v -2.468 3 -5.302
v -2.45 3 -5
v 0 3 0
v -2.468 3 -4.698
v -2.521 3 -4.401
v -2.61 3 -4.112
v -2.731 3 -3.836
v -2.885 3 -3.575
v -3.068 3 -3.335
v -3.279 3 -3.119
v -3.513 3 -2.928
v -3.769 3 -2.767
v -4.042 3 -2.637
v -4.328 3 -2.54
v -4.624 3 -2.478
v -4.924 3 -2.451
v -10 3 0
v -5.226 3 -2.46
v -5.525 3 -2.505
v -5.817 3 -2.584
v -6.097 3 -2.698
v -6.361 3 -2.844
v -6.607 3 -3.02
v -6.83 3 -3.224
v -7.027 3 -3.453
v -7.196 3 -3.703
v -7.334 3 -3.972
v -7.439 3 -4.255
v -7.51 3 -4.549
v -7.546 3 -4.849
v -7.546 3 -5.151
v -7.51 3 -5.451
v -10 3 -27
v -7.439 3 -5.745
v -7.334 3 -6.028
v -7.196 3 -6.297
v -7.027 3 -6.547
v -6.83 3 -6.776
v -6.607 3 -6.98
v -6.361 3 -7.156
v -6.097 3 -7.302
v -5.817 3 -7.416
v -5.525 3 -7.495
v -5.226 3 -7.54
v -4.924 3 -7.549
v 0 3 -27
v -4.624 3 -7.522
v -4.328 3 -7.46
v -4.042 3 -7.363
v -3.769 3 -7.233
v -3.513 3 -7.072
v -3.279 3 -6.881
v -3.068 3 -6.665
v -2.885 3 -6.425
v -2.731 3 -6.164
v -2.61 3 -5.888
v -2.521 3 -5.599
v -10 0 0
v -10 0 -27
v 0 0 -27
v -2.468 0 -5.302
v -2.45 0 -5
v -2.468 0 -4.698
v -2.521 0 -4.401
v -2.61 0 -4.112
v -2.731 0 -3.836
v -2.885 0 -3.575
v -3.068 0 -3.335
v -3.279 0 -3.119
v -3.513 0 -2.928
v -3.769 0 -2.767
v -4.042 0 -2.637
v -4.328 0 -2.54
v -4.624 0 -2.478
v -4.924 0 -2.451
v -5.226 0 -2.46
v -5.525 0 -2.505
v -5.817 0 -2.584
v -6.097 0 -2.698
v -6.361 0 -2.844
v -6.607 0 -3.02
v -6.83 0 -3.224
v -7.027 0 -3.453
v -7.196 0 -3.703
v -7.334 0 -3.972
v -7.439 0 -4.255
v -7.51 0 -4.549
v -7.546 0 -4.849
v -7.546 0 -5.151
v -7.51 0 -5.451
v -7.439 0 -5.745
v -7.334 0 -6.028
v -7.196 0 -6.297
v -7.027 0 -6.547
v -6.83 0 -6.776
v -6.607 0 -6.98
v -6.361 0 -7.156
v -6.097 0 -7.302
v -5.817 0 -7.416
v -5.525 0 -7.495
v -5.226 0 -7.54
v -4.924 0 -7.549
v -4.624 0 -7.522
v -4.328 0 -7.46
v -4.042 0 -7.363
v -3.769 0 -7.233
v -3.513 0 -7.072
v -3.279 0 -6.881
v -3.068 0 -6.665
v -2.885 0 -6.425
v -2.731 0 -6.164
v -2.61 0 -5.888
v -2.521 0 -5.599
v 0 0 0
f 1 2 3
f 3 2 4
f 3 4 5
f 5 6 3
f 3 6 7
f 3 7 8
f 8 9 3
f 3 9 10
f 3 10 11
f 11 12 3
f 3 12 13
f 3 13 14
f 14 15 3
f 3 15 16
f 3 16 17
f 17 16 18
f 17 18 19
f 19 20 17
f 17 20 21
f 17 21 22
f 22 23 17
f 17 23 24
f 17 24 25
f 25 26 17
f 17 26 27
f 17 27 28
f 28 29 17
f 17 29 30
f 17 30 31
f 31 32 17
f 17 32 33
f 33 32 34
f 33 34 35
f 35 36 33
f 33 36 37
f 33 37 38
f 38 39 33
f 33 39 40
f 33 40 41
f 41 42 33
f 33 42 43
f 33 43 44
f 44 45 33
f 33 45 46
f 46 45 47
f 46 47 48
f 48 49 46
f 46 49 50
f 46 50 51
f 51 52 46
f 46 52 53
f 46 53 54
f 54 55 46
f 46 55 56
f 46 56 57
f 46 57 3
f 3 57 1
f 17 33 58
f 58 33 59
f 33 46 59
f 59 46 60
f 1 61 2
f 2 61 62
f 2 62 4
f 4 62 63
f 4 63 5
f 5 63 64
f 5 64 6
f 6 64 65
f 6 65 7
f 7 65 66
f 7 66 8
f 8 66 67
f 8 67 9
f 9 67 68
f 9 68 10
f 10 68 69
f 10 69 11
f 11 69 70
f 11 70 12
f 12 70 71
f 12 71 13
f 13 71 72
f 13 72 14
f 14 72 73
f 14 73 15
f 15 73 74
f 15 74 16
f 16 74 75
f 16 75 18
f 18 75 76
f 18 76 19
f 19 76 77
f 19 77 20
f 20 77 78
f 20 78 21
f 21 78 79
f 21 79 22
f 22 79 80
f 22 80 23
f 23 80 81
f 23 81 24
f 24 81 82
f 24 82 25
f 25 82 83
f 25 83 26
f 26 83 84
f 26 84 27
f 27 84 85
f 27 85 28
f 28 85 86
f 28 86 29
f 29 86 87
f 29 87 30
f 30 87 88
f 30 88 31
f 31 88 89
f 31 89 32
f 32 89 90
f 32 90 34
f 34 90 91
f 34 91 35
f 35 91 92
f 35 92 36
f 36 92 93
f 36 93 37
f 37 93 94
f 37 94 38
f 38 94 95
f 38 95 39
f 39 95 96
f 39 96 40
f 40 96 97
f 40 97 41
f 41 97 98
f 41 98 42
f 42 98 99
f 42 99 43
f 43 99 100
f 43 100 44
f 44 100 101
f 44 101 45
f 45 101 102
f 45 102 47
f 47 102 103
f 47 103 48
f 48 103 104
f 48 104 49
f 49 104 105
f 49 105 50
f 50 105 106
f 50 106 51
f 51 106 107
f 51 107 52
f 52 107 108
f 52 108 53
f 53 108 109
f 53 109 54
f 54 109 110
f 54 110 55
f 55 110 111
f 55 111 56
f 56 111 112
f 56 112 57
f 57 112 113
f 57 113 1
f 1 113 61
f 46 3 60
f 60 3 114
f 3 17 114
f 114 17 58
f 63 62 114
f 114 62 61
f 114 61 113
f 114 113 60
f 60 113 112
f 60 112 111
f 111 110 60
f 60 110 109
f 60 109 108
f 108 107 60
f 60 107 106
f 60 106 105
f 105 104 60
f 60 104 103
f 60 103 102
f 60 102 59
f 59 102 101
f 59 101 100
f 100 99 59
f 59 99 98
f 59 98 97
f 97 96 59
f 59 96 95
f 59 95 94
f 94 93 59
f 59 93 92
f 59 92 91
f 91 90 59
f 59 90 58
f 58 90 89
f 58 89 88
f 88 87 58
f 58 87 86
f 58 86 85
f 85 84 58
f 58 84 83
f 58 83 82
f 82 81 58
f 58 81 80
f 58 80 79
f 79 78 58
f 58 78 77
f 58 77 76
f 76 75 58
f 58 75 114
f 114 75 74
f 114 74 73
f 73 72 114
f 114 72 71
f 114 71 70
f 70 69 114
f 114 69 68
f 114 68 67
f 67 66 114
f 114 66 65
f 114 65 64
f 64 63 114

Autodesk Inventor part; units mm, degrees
ref_plane "YZ Plane" through (0, 0, 0) normal (1, 0, 0) x (0, 1, 0)
ref_plane "XZ Plane" through (0, 0, 0) normal (0, 1, 0) x (-1, 0, 0)
ref_plane "XY Plane" through (0, 0, 0) normal (0, 0, 1) x (1, 0, 0)
sketch "Sketch1" plane through (0, 0, 0) normal (0, 1, 0) x (-1, 0, 0)
  line L0 (0, 0) -> (10, 0)
  line L1 (10, 0) -> (10, -27)
  line L2 (10, -27) -> (0, -27)
  line L3 (0, -27) -> (0, 0)
  dimension "d0" = 10
  dimension "d1" = 27
extrude "Extrusion1" add sketch "Sketch1" along normal blind 10
sketch "Sketch2" plane through (0, 10, 0) normal (0, 1, 0) x (1, 0, 0)
  line L0 (-10, 27) -> (-10, 0) projected
  line L1 (-10, 0) -> (-10, 5)
  circle A0 centre (-5, 5) radius 2.55
  point P0 (0, 0)
  dimension "d4" = 5
  dimension "d5" = 5.1
extrude "Extrusion2" cut sketch "Sketch2" against normal blind 10
sketch "Sketch4" plane through (0, 10, 0) normal (0, 1, 0) x (1, 0, 0)
  line L0 (0, 27) -> (-10, 27) projected
  line L1 (-10, 27) -> (-10, 0) projected
  line L2 (0, 27) -> (-10, 27)
  line L3 (-10, 27) -> (-10, 0)
  line L4 (-10, 0) -> (0, 0)
  line L5 (0, 0) -> (0, 27)
  point P0 (0, 0)
  dimension "d13" = 27
extrude "Extrusion4" cut sketch "Sketch4" against normal blind 7
properties part number "Raket_Arme_Motor"
